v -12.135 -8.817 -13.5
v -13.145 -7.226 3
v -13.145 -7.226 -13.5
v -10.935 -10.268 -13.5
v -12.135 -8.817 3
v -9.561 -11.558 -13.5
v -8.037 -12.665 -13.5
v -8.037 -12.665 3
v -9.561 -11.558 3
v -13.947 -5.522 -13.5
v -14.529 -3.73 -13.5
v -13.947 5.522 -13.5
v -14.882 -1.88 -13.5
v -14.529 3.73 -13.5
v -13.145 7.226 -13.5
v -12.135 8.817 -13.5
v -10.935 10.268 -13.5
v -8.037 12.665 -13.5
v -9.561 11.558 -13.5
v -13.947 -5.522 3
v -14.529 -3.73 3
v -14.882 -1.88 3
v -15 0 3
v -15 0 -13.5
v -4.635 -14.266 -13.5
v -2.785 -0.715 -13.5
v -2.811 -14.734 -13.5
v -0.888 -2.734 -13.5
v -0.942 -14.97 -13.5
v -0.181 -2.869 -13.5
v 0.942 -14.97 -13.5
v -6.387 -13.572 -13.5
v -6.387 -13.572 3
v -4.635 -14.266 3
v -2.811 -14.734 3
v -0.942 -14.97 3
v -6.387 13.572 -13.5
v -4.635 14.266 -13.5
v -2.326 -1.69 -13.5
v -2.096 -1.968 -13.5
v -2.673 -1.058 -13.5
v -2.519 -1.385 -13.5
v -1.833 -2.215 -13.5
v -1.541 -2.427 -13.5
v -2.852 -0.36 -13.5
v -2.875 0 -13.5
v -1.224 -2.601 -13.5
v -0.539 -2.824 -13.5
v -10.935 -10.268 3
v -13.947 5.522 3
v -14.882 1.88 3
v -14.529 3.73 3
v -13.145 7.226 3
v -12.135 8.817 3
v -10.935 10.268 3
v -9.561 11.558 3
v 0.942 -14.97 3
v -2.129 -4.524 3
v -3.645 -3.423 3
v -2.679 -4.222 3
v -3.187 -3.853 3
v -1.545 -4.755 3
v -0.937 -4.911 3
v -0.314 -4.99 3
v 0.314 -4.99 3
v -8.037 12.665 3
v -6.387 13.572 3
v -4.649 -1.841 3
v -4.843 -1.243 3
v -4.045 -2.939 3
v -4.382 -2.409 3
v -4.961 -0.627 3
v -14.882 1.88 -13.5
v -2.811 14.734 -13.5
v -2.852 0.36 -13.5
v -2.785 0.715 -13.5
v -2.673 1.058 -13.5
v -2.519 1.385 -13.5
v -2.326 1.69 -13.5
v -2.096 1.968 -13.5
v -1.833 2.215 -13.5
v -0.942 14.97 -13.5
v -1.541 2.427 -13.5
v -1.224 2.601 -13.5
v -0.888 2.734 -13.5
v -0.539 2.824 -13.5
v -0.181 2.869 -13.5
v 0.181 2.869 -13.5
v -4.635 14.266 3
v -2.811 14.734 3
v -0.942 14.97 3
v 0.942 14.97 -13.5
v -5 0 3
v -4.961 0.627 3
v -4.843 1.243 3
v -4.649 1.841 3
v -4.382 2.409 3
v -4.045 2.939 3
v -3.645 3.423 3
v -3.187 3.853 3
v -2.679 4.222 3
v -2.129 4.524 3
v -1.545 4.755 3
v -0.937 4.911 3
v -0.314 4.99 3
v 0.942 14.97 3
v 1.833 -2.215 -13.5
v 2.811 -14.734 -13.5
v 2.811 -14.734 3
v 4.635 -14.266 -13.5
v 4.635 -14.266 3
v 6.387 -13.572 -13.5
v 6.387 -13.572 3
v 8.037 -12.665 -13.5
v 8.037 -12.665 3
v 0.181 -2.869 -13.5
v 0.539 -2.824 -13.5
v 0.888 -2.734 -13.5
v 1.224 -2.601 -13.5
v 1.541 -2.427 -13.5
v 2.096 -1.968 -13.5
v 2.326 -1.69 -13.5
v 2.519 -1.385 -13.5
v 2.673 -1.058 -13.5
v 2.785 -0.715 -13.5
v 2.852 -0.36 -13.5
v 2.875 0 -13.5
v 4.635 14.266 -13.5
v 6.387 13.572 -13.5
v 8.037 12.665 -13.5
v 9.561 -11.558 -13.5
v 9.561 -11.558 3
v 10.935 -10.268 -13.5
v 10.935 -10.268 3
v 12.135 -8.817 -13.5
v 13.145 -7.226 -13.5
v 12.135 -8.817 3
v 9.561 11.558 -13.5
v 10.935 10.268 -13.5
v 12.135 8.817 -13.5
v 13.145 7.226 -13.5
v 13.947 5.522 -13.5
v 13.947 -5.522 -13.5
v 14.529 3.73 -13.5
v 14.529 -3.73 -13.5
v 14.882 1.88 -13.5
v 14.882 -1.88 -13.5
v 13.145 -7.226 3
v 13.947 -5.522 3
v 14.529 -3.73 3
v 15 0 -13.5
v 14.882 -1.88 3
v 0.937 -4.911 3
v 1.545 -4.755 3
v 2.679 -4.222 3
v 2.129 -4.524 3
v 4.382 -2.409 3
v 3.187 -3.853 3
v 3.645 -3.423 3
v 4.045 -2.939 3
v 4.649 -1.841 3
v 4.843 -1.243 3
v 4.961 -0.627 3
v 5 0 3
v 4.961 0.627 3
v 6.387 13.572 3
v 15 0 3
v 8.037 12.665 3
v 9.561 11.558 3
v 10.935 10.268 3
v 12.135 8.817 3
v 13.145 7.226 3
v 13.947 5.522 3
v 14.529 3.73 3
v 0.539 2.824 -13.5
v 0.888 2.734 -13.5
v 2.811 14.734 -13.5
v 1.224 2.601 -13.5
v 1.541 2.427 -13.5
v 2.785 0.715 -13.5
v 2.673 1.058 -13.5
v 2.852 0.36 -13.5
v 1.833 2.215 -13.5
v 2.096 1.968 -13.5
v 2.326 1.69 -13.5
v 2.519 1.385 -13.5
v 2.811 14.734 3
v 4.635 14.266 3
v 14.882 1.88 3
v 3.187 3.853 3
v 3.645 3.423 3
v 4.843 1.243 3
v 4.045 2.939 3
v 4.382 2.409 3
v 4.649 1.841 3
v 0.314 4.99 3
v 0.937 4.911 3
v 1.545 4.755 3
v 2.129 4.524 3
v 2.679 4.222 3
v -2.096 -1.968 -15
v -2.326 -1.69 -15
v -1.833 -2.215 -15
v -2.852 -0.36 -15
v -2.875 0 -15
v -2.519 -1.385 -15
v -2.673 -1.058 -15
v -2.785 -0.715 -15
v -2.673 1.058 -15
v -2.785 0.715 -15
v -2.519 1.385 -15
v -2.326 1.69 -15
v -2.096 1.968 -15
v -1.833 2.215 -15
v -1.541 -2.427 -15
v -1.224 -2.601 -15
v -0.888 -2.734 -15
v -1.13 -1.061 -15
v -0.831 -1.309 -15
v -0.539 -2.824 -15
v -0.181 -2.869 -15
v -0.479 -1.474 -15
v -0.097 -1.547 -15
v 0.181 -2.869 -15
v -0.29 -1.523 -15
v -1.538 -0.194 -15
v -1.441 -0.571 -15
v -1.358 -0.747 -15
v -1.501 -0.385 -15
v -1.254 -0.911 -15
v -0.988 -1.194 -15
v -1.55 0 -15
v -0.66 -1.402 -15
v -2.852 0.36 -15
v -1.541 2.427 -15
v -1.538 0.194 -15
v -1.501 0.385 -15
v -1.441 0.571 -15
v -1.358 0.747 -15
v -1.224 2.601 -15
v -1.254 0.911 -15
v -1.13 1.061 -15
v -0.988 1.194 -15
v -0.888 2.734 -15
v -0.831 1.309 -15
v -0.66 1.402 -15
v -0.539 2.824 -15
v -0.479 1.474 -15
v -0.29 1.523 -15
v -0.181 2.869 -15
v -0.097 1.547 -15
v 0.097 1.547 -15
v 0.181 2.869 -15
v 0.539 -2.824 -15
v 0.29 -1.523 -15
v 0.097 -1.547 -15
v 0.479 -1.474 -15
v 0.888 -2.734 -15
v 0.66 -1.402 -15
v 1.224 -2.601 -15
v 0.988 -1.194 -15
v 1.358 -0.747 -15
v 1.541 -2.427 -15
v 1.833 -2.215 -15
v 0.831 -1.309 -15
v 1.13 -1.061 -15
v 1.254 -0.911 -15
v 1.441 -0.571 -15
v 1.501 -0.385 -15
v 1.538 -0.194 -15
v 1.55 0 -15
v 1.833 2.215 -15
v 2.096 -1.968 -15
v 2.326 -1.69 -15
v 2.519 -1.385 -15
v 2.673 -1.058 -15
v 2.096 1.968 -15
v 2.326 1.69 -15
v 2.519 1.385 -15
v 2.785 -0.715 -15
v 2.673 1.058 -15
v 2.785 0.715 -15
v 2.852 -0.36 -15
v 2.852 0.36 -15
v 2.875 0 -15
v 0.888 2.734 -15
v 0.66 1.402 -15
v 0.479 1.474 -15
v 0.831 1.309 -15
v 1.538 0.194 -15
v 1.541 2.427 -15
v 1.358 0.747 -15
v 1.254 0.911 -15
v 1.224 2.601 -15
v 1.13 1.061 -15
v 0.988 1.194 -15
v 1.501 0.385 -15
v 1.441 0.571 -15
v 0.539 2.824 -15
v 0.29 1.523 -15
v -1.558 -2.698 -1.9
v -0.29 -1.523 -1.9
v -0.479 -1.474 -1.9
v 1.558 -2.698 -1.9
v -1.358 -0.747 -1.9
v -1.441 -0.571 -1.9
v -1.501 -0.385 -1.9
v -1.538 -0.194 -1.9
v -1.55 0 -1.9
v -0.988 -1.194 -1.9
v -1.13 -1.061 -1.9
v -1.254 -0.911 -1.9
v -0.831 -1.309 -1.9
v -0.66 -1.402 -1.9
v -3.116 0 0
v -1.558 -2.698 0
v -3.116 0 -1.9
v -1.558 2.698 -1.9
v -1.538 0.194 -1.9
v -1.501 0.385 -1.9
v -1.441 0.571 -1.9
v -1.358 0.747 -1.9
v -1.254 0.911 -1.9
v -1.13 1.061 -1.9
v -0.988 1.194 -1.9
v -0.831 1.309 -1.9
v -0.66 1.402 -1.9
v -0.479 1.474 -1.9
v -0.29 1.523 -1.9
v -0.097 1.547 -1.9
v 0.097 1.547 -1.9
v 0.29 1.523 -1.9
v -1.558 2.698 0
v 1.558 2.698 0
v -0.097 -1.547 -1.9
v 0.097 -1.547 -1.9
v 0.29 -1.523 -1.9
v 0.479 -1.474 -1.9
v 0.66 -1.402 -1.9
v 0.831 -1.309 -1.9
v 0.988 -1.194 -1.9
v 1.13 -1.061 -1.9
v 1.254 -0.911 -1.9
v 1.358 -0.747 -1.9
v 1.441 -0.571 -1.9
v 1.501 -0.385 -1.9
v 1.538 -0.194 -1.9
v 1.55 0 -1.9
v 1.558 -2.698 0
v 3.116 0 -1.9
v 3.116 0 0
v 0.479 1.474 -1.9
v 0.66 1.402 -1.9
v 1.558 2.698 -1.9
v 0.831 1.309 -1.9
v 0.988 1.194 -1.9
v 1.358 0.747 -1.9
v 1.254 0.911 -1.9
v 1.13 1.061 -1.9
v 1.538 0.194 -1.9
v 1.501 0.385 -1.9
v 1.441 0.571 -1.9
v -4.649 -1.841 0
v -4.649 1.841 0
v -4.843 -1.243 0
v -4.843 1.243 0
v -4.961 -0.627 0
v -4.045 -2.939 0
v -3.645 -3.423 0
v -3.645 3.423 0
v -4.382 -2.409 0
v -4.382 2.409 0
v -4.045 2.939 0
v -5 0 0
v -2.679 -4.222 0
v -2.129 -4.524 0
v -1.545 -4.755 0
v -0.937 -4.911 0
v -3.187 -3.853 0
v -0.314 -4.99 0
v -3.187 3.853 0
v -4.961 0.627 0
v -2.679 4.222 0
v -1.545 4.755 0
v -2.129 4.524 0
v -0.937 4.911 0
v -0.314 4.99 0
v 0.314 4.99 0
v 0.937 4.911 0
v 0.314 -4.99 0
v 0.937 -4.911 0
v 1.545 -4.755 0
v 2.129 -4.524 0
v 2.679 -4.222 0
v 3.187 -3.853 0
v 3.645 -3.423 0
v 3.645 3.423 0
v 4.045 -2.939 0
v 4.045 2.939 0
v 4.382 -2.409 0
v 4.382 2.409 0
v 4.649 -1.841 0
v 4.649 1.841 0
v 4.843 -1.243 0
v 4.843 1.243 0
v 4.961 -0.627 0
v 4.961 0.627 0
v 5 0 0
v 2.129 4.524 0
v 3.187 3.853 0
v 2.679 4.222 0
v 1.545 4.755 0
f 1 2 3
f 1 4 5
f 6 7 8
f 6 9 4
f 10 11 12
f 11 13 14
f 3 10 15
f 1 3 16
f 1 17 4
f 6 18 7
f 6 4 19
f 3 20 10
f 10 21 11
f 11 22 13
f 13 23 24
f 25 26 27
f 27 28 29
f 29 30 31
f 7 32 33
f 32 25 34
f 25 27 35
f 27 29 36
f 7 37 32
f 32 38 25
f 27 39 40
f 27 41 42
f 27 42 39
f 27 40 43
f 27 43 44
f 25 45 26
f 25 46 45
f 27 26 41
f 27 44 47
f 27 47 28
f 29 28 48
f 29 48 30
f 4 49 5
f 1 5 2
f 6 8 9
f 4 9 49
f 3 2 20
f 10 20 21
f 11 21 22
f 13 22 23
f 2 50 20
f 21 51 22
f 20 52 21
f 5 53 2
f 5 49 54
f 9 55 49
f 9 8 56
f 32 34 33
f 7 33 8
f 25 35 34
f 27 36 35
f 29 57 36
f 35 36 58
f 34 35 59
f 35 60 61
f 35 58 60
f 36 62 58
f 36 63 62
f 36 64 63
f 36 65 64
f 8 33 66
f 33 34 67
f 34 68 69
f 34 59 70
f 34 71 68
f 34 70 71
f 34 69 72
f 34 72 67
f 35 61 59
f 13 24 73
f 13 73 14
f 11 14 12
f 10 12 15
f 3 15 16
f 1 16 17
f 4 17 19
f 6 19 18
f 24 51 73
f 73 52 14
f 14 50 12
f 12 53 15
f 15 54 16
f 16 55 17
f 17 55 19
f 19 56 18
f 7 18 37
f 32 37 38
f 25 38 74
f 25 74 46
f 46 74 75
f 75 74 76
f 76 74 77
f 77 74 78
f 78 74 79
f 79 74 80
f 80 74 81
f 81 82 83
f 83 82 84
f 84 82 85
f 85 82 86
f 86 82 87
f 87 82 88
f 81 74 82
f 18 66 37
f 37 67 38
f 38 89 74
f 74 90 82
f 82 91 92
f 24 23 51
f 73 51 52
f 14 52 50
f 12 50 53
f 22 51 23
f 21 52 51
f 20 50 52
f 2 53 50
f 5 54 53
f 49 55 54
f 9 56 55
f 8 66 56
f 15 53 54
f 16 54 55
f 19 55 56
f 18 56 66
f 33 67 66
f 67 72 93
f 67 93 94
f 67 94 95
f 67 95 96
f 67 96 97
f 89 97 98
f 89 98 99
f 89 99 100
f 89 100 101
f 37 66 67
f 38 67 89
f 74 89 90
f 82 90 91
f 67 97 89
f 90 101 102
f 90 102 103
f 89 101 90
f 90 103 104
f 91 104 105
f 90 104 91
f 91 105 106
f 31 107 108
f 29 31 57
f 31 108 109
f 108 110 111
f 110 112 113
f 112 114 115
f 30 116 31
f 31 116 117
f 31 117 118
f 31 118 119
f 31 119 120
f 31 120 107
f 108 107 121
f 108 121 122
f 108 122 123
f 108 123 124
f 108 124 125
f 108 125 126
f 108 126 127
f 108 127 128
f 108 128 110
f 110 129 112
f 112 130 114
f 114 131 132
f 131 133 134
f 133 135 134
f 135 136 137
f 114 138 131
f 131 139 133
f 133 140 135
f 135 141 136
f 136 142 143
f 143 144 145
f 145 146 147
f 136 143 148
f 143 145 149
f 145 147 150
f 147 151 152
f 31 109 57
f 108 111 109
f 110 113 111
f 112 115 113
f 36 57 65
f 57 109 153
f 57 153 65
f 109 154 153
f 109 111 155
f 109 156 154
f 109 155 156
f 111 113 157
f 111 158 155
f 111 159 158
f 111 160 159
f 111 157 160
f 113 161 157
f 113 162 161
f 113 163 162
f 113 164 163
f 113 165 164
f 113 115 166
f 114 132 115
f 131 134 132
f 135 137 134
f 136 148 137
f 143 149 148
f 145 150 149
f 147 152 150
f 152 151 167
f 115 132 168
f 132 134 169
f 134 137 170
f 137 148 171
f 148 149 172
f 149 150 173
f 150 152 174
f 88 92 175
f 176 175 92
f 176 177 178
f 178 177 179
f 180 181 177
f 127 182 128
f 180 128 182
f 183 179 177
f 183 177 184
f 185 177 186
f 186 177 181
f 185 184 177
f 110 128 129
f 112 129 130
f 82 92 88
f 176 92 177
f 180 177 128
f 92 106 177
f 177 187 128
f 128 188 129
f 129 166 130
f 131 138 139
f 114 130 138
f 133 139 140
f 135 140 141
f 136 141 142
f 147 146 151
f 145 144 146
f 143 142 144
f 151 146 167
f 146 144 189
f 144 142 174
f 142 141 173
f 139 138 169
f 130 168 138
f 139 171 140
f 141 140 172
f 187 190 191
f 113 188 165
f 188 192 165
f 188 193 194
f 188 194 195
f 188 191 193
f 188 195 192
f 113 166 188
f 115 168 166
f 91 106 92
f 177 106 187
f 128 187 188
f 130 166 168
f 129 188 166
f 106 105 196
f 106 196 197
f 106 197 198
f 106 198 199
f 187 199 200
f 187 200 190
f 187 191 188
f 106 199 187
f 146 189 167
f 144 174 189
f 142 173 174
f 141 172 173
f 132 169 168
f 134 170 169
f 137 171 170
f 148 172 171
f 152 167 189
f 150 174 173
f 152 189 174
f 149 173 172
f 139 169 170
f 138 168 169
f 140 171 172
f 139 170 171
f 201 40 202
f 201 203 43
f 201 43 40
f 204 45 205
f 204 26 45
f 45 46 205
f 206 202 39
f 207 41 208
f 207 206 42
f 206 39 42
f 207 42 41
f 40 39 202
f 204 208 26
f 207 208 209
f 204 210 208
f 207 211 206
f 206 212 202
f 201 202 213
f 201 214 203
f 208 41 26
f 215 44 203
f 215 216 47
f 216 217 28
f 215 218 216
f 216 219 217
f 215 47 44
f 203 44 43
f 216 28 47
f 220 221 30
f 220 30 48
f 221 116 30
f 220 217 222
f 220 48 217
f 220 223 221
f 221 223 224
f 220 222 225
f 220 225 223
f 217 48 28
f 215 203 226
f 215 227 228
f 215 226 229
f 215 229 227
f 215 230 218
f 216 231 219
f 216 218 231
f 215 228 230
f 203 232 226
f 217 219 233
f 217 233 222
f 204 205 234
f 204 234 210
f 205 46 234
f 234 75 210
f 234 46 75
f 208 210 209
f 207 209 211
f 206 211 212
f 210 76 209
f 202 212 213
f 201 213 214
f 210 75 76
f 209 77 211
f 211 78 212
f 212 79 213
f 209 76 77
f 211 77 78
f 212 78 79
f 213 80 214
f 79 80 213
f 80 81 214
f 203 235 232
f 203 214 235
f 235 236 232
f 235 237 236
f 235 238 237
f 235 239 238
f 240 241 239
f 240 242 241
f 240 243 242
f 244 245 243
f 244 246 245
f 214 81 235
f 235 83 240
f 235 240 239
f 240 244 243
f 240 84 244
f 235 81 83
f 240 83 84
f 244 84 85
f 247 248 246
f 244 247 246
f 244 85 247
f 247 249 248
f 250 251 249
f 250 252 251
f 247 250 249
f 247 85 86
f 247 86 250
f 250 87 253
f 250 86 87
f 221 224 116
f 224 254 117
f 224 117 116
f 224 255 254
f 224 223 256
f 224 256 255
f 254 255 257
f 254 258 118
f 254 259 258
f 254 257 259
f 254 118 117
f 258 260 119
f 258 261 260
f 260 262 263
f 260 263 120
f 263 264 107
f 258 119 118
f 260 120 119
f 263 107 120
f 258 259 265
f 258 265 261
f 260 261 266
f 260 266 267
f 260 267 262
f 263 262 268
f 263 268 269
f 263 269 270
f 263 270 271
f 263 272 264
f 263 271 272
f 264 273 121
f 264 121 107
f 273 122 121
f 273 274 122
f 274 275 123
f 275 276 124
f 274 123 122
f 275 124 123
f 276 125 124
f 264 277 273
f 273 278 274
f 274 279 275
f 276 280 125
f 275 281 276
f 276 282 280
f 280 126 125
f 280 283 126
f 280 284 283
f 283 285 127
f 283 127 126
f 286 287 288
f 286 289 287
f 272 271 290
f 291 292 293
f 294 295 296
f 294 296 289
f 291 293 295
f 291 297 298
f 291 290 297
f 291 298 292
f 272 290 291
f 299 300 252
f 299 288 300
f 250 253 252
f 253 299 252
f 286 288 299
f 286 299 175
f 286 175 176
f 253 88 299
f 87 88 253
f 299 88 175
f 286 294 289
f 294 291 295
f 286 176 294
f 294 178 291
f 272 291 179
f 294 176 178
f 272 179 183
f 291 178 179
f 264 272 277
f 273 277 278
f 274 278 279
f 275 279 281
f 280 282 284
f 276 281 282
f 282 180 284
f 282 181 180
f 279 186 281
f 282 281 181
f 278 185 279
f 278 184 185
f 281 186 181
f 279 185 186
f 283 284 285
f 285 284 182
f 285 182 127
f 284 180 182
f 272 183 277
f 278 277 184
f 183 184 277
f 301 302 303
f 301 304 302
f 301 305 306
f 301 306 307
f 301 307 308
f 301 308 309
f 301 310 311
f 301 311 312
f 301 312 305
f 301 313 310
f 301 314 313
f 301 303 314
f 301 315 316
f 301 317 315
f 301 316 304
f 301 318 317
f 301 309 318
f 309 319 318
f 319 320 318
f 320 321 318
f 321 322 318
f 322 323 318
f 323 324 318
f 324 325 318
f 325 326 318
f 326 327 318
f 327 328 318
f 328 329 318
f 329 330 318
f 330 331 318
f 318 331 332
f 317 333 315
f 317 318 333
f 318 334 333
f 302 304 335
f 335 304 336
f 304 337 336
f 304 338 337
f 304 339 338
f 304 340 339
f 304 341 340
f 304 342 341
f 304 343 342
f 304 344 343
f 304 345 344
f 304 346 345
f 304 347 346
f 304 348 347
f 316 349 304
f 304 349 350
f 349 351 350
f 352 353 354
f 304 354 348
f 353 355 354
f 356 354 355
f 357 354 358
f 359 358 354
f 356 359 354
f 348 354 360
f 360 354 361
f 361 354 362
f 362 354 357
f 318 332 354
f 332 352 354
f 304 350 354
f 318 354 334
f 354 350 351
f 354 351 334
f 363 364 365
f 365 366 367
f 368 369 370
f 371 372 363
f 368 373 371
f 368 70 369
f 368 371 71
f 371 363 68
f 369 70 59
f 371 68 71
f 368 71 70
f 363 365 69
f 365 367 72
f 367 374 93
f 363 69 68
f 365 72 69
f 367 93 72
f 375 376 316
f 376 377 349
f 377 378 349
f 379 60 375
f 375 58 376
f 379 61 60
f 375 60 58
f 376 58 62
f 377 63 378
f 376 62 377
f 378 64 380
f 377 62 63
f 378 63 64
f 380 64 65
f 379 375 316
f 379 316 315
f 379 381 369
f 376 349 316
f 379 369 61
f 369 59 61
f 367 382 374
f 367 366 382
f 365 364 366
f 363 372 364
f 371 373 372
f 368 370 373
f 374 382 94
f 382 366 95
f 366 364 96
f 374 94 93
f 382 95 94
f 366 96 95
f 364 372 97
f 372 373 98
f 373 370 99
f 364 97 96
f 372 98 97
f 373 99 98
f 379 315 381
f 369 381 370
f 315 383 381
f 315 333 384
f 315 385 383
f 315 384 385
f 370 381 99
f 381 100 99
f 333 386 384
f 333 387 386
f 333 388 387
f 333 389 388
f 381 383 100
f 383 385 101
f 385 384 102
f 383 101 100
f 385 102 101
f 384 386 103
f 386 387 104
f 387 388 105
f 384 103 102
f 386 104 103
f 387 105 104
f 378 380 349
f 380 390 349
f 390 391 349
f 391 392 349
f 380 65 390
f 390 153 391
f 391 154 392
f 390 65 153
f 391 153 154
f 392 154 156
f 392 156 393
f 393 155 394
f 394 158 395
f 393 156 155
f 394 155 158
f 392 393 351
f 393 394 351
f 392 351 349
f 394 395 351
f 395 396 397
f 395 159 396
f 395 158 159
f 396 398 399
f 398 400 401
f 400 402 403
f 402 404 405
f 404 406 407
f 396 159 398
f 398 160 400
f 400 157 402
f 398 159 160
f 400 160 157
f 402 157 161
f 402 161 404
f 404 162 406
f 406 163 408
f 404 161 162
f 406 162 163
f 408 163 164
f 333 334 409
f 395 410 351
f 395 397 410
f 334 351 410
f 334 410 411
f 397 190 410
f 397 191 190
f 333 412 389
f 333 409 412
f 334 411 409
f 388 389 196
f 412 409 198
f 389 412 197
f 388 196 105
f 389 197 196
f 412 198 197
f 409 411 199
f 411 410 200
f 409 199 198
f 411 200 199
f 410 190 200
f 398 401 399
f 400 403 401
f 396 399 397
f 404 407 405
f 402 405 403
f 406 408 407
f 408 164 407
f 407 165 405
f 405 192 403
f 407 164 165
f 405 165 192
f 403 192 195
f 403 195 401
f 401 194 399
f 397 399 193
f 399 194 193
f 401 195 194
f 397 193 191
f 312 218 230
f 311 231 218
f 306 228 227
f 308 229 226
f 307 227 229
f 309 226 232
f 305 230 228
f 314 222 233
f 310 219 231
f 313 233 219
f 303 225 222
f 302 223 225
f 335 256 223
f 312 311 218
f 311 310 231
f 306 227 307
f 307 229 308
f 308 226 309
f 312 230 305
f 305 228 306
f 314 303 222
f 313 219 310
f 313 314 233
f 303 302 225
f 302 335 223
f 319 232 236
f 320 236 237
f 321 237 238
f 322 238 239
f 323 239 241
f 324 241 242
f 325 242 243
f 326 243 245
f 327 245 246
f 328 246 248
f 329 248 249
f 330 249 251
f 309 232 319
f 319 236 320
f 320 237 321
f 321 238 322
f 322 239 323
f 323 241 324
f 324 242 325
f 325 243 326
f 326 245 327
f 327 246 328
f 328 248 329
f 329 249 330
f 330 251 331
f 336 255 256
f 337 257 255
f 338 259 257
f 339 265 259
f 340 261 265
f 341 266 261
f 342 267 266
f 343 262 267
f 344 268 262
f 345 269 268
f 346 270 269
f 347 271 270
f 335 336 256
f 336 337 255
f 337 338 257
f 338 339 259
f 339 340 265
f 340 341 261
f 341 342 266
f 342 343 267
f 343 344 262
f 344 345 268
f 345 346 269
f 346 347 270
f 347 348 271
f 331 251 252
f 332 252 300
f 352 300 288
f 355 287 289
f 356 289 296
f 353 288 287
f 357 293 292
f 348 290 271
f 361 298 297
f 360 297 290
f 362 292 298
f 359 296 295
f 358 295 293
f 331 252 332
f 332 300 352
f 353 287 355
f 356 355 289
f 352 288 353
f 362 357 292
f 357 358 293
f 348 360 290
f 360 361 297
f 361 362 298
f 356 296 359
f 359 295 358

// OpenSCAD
$fn = 50;

difference() {
	union() {
		translate(v = [0, 0, -13.5]) {
			cylinder(h = 16.5, r = 15.0);
		}
		#translate(v = [0, 0, -15.0]) {
			cylinder(h = 15, r = 2.875);
		}
	}
	union() {
		translate(v = [0, 0, 0]) {
			rotate(a = [0, 0, 0]) {
				difference() {
					union() {
						translate(v = [0, 0, -1.9]) {
							linear_extrude(height = 1.9) {
								polygon(points = [[3.1158, 0.0], [1.5579000000000005, 2.698361953111554], [-1.5578999999999994, 2.6983619531115544], [-3.1158, 3.815754496783323e-16], [-1.5579000000000014, -2.6983619531115535], [1.557899999999998, -2.6983619531115552]]);
							}
						}
					}
					union();
				}
			}
		}
		#cylinder(h = 3, r = 5.0);
		#translate(v = [0, 0, -100.0]) {
			cylinder(h = 200, r = 1.55);
		}
	}
}
